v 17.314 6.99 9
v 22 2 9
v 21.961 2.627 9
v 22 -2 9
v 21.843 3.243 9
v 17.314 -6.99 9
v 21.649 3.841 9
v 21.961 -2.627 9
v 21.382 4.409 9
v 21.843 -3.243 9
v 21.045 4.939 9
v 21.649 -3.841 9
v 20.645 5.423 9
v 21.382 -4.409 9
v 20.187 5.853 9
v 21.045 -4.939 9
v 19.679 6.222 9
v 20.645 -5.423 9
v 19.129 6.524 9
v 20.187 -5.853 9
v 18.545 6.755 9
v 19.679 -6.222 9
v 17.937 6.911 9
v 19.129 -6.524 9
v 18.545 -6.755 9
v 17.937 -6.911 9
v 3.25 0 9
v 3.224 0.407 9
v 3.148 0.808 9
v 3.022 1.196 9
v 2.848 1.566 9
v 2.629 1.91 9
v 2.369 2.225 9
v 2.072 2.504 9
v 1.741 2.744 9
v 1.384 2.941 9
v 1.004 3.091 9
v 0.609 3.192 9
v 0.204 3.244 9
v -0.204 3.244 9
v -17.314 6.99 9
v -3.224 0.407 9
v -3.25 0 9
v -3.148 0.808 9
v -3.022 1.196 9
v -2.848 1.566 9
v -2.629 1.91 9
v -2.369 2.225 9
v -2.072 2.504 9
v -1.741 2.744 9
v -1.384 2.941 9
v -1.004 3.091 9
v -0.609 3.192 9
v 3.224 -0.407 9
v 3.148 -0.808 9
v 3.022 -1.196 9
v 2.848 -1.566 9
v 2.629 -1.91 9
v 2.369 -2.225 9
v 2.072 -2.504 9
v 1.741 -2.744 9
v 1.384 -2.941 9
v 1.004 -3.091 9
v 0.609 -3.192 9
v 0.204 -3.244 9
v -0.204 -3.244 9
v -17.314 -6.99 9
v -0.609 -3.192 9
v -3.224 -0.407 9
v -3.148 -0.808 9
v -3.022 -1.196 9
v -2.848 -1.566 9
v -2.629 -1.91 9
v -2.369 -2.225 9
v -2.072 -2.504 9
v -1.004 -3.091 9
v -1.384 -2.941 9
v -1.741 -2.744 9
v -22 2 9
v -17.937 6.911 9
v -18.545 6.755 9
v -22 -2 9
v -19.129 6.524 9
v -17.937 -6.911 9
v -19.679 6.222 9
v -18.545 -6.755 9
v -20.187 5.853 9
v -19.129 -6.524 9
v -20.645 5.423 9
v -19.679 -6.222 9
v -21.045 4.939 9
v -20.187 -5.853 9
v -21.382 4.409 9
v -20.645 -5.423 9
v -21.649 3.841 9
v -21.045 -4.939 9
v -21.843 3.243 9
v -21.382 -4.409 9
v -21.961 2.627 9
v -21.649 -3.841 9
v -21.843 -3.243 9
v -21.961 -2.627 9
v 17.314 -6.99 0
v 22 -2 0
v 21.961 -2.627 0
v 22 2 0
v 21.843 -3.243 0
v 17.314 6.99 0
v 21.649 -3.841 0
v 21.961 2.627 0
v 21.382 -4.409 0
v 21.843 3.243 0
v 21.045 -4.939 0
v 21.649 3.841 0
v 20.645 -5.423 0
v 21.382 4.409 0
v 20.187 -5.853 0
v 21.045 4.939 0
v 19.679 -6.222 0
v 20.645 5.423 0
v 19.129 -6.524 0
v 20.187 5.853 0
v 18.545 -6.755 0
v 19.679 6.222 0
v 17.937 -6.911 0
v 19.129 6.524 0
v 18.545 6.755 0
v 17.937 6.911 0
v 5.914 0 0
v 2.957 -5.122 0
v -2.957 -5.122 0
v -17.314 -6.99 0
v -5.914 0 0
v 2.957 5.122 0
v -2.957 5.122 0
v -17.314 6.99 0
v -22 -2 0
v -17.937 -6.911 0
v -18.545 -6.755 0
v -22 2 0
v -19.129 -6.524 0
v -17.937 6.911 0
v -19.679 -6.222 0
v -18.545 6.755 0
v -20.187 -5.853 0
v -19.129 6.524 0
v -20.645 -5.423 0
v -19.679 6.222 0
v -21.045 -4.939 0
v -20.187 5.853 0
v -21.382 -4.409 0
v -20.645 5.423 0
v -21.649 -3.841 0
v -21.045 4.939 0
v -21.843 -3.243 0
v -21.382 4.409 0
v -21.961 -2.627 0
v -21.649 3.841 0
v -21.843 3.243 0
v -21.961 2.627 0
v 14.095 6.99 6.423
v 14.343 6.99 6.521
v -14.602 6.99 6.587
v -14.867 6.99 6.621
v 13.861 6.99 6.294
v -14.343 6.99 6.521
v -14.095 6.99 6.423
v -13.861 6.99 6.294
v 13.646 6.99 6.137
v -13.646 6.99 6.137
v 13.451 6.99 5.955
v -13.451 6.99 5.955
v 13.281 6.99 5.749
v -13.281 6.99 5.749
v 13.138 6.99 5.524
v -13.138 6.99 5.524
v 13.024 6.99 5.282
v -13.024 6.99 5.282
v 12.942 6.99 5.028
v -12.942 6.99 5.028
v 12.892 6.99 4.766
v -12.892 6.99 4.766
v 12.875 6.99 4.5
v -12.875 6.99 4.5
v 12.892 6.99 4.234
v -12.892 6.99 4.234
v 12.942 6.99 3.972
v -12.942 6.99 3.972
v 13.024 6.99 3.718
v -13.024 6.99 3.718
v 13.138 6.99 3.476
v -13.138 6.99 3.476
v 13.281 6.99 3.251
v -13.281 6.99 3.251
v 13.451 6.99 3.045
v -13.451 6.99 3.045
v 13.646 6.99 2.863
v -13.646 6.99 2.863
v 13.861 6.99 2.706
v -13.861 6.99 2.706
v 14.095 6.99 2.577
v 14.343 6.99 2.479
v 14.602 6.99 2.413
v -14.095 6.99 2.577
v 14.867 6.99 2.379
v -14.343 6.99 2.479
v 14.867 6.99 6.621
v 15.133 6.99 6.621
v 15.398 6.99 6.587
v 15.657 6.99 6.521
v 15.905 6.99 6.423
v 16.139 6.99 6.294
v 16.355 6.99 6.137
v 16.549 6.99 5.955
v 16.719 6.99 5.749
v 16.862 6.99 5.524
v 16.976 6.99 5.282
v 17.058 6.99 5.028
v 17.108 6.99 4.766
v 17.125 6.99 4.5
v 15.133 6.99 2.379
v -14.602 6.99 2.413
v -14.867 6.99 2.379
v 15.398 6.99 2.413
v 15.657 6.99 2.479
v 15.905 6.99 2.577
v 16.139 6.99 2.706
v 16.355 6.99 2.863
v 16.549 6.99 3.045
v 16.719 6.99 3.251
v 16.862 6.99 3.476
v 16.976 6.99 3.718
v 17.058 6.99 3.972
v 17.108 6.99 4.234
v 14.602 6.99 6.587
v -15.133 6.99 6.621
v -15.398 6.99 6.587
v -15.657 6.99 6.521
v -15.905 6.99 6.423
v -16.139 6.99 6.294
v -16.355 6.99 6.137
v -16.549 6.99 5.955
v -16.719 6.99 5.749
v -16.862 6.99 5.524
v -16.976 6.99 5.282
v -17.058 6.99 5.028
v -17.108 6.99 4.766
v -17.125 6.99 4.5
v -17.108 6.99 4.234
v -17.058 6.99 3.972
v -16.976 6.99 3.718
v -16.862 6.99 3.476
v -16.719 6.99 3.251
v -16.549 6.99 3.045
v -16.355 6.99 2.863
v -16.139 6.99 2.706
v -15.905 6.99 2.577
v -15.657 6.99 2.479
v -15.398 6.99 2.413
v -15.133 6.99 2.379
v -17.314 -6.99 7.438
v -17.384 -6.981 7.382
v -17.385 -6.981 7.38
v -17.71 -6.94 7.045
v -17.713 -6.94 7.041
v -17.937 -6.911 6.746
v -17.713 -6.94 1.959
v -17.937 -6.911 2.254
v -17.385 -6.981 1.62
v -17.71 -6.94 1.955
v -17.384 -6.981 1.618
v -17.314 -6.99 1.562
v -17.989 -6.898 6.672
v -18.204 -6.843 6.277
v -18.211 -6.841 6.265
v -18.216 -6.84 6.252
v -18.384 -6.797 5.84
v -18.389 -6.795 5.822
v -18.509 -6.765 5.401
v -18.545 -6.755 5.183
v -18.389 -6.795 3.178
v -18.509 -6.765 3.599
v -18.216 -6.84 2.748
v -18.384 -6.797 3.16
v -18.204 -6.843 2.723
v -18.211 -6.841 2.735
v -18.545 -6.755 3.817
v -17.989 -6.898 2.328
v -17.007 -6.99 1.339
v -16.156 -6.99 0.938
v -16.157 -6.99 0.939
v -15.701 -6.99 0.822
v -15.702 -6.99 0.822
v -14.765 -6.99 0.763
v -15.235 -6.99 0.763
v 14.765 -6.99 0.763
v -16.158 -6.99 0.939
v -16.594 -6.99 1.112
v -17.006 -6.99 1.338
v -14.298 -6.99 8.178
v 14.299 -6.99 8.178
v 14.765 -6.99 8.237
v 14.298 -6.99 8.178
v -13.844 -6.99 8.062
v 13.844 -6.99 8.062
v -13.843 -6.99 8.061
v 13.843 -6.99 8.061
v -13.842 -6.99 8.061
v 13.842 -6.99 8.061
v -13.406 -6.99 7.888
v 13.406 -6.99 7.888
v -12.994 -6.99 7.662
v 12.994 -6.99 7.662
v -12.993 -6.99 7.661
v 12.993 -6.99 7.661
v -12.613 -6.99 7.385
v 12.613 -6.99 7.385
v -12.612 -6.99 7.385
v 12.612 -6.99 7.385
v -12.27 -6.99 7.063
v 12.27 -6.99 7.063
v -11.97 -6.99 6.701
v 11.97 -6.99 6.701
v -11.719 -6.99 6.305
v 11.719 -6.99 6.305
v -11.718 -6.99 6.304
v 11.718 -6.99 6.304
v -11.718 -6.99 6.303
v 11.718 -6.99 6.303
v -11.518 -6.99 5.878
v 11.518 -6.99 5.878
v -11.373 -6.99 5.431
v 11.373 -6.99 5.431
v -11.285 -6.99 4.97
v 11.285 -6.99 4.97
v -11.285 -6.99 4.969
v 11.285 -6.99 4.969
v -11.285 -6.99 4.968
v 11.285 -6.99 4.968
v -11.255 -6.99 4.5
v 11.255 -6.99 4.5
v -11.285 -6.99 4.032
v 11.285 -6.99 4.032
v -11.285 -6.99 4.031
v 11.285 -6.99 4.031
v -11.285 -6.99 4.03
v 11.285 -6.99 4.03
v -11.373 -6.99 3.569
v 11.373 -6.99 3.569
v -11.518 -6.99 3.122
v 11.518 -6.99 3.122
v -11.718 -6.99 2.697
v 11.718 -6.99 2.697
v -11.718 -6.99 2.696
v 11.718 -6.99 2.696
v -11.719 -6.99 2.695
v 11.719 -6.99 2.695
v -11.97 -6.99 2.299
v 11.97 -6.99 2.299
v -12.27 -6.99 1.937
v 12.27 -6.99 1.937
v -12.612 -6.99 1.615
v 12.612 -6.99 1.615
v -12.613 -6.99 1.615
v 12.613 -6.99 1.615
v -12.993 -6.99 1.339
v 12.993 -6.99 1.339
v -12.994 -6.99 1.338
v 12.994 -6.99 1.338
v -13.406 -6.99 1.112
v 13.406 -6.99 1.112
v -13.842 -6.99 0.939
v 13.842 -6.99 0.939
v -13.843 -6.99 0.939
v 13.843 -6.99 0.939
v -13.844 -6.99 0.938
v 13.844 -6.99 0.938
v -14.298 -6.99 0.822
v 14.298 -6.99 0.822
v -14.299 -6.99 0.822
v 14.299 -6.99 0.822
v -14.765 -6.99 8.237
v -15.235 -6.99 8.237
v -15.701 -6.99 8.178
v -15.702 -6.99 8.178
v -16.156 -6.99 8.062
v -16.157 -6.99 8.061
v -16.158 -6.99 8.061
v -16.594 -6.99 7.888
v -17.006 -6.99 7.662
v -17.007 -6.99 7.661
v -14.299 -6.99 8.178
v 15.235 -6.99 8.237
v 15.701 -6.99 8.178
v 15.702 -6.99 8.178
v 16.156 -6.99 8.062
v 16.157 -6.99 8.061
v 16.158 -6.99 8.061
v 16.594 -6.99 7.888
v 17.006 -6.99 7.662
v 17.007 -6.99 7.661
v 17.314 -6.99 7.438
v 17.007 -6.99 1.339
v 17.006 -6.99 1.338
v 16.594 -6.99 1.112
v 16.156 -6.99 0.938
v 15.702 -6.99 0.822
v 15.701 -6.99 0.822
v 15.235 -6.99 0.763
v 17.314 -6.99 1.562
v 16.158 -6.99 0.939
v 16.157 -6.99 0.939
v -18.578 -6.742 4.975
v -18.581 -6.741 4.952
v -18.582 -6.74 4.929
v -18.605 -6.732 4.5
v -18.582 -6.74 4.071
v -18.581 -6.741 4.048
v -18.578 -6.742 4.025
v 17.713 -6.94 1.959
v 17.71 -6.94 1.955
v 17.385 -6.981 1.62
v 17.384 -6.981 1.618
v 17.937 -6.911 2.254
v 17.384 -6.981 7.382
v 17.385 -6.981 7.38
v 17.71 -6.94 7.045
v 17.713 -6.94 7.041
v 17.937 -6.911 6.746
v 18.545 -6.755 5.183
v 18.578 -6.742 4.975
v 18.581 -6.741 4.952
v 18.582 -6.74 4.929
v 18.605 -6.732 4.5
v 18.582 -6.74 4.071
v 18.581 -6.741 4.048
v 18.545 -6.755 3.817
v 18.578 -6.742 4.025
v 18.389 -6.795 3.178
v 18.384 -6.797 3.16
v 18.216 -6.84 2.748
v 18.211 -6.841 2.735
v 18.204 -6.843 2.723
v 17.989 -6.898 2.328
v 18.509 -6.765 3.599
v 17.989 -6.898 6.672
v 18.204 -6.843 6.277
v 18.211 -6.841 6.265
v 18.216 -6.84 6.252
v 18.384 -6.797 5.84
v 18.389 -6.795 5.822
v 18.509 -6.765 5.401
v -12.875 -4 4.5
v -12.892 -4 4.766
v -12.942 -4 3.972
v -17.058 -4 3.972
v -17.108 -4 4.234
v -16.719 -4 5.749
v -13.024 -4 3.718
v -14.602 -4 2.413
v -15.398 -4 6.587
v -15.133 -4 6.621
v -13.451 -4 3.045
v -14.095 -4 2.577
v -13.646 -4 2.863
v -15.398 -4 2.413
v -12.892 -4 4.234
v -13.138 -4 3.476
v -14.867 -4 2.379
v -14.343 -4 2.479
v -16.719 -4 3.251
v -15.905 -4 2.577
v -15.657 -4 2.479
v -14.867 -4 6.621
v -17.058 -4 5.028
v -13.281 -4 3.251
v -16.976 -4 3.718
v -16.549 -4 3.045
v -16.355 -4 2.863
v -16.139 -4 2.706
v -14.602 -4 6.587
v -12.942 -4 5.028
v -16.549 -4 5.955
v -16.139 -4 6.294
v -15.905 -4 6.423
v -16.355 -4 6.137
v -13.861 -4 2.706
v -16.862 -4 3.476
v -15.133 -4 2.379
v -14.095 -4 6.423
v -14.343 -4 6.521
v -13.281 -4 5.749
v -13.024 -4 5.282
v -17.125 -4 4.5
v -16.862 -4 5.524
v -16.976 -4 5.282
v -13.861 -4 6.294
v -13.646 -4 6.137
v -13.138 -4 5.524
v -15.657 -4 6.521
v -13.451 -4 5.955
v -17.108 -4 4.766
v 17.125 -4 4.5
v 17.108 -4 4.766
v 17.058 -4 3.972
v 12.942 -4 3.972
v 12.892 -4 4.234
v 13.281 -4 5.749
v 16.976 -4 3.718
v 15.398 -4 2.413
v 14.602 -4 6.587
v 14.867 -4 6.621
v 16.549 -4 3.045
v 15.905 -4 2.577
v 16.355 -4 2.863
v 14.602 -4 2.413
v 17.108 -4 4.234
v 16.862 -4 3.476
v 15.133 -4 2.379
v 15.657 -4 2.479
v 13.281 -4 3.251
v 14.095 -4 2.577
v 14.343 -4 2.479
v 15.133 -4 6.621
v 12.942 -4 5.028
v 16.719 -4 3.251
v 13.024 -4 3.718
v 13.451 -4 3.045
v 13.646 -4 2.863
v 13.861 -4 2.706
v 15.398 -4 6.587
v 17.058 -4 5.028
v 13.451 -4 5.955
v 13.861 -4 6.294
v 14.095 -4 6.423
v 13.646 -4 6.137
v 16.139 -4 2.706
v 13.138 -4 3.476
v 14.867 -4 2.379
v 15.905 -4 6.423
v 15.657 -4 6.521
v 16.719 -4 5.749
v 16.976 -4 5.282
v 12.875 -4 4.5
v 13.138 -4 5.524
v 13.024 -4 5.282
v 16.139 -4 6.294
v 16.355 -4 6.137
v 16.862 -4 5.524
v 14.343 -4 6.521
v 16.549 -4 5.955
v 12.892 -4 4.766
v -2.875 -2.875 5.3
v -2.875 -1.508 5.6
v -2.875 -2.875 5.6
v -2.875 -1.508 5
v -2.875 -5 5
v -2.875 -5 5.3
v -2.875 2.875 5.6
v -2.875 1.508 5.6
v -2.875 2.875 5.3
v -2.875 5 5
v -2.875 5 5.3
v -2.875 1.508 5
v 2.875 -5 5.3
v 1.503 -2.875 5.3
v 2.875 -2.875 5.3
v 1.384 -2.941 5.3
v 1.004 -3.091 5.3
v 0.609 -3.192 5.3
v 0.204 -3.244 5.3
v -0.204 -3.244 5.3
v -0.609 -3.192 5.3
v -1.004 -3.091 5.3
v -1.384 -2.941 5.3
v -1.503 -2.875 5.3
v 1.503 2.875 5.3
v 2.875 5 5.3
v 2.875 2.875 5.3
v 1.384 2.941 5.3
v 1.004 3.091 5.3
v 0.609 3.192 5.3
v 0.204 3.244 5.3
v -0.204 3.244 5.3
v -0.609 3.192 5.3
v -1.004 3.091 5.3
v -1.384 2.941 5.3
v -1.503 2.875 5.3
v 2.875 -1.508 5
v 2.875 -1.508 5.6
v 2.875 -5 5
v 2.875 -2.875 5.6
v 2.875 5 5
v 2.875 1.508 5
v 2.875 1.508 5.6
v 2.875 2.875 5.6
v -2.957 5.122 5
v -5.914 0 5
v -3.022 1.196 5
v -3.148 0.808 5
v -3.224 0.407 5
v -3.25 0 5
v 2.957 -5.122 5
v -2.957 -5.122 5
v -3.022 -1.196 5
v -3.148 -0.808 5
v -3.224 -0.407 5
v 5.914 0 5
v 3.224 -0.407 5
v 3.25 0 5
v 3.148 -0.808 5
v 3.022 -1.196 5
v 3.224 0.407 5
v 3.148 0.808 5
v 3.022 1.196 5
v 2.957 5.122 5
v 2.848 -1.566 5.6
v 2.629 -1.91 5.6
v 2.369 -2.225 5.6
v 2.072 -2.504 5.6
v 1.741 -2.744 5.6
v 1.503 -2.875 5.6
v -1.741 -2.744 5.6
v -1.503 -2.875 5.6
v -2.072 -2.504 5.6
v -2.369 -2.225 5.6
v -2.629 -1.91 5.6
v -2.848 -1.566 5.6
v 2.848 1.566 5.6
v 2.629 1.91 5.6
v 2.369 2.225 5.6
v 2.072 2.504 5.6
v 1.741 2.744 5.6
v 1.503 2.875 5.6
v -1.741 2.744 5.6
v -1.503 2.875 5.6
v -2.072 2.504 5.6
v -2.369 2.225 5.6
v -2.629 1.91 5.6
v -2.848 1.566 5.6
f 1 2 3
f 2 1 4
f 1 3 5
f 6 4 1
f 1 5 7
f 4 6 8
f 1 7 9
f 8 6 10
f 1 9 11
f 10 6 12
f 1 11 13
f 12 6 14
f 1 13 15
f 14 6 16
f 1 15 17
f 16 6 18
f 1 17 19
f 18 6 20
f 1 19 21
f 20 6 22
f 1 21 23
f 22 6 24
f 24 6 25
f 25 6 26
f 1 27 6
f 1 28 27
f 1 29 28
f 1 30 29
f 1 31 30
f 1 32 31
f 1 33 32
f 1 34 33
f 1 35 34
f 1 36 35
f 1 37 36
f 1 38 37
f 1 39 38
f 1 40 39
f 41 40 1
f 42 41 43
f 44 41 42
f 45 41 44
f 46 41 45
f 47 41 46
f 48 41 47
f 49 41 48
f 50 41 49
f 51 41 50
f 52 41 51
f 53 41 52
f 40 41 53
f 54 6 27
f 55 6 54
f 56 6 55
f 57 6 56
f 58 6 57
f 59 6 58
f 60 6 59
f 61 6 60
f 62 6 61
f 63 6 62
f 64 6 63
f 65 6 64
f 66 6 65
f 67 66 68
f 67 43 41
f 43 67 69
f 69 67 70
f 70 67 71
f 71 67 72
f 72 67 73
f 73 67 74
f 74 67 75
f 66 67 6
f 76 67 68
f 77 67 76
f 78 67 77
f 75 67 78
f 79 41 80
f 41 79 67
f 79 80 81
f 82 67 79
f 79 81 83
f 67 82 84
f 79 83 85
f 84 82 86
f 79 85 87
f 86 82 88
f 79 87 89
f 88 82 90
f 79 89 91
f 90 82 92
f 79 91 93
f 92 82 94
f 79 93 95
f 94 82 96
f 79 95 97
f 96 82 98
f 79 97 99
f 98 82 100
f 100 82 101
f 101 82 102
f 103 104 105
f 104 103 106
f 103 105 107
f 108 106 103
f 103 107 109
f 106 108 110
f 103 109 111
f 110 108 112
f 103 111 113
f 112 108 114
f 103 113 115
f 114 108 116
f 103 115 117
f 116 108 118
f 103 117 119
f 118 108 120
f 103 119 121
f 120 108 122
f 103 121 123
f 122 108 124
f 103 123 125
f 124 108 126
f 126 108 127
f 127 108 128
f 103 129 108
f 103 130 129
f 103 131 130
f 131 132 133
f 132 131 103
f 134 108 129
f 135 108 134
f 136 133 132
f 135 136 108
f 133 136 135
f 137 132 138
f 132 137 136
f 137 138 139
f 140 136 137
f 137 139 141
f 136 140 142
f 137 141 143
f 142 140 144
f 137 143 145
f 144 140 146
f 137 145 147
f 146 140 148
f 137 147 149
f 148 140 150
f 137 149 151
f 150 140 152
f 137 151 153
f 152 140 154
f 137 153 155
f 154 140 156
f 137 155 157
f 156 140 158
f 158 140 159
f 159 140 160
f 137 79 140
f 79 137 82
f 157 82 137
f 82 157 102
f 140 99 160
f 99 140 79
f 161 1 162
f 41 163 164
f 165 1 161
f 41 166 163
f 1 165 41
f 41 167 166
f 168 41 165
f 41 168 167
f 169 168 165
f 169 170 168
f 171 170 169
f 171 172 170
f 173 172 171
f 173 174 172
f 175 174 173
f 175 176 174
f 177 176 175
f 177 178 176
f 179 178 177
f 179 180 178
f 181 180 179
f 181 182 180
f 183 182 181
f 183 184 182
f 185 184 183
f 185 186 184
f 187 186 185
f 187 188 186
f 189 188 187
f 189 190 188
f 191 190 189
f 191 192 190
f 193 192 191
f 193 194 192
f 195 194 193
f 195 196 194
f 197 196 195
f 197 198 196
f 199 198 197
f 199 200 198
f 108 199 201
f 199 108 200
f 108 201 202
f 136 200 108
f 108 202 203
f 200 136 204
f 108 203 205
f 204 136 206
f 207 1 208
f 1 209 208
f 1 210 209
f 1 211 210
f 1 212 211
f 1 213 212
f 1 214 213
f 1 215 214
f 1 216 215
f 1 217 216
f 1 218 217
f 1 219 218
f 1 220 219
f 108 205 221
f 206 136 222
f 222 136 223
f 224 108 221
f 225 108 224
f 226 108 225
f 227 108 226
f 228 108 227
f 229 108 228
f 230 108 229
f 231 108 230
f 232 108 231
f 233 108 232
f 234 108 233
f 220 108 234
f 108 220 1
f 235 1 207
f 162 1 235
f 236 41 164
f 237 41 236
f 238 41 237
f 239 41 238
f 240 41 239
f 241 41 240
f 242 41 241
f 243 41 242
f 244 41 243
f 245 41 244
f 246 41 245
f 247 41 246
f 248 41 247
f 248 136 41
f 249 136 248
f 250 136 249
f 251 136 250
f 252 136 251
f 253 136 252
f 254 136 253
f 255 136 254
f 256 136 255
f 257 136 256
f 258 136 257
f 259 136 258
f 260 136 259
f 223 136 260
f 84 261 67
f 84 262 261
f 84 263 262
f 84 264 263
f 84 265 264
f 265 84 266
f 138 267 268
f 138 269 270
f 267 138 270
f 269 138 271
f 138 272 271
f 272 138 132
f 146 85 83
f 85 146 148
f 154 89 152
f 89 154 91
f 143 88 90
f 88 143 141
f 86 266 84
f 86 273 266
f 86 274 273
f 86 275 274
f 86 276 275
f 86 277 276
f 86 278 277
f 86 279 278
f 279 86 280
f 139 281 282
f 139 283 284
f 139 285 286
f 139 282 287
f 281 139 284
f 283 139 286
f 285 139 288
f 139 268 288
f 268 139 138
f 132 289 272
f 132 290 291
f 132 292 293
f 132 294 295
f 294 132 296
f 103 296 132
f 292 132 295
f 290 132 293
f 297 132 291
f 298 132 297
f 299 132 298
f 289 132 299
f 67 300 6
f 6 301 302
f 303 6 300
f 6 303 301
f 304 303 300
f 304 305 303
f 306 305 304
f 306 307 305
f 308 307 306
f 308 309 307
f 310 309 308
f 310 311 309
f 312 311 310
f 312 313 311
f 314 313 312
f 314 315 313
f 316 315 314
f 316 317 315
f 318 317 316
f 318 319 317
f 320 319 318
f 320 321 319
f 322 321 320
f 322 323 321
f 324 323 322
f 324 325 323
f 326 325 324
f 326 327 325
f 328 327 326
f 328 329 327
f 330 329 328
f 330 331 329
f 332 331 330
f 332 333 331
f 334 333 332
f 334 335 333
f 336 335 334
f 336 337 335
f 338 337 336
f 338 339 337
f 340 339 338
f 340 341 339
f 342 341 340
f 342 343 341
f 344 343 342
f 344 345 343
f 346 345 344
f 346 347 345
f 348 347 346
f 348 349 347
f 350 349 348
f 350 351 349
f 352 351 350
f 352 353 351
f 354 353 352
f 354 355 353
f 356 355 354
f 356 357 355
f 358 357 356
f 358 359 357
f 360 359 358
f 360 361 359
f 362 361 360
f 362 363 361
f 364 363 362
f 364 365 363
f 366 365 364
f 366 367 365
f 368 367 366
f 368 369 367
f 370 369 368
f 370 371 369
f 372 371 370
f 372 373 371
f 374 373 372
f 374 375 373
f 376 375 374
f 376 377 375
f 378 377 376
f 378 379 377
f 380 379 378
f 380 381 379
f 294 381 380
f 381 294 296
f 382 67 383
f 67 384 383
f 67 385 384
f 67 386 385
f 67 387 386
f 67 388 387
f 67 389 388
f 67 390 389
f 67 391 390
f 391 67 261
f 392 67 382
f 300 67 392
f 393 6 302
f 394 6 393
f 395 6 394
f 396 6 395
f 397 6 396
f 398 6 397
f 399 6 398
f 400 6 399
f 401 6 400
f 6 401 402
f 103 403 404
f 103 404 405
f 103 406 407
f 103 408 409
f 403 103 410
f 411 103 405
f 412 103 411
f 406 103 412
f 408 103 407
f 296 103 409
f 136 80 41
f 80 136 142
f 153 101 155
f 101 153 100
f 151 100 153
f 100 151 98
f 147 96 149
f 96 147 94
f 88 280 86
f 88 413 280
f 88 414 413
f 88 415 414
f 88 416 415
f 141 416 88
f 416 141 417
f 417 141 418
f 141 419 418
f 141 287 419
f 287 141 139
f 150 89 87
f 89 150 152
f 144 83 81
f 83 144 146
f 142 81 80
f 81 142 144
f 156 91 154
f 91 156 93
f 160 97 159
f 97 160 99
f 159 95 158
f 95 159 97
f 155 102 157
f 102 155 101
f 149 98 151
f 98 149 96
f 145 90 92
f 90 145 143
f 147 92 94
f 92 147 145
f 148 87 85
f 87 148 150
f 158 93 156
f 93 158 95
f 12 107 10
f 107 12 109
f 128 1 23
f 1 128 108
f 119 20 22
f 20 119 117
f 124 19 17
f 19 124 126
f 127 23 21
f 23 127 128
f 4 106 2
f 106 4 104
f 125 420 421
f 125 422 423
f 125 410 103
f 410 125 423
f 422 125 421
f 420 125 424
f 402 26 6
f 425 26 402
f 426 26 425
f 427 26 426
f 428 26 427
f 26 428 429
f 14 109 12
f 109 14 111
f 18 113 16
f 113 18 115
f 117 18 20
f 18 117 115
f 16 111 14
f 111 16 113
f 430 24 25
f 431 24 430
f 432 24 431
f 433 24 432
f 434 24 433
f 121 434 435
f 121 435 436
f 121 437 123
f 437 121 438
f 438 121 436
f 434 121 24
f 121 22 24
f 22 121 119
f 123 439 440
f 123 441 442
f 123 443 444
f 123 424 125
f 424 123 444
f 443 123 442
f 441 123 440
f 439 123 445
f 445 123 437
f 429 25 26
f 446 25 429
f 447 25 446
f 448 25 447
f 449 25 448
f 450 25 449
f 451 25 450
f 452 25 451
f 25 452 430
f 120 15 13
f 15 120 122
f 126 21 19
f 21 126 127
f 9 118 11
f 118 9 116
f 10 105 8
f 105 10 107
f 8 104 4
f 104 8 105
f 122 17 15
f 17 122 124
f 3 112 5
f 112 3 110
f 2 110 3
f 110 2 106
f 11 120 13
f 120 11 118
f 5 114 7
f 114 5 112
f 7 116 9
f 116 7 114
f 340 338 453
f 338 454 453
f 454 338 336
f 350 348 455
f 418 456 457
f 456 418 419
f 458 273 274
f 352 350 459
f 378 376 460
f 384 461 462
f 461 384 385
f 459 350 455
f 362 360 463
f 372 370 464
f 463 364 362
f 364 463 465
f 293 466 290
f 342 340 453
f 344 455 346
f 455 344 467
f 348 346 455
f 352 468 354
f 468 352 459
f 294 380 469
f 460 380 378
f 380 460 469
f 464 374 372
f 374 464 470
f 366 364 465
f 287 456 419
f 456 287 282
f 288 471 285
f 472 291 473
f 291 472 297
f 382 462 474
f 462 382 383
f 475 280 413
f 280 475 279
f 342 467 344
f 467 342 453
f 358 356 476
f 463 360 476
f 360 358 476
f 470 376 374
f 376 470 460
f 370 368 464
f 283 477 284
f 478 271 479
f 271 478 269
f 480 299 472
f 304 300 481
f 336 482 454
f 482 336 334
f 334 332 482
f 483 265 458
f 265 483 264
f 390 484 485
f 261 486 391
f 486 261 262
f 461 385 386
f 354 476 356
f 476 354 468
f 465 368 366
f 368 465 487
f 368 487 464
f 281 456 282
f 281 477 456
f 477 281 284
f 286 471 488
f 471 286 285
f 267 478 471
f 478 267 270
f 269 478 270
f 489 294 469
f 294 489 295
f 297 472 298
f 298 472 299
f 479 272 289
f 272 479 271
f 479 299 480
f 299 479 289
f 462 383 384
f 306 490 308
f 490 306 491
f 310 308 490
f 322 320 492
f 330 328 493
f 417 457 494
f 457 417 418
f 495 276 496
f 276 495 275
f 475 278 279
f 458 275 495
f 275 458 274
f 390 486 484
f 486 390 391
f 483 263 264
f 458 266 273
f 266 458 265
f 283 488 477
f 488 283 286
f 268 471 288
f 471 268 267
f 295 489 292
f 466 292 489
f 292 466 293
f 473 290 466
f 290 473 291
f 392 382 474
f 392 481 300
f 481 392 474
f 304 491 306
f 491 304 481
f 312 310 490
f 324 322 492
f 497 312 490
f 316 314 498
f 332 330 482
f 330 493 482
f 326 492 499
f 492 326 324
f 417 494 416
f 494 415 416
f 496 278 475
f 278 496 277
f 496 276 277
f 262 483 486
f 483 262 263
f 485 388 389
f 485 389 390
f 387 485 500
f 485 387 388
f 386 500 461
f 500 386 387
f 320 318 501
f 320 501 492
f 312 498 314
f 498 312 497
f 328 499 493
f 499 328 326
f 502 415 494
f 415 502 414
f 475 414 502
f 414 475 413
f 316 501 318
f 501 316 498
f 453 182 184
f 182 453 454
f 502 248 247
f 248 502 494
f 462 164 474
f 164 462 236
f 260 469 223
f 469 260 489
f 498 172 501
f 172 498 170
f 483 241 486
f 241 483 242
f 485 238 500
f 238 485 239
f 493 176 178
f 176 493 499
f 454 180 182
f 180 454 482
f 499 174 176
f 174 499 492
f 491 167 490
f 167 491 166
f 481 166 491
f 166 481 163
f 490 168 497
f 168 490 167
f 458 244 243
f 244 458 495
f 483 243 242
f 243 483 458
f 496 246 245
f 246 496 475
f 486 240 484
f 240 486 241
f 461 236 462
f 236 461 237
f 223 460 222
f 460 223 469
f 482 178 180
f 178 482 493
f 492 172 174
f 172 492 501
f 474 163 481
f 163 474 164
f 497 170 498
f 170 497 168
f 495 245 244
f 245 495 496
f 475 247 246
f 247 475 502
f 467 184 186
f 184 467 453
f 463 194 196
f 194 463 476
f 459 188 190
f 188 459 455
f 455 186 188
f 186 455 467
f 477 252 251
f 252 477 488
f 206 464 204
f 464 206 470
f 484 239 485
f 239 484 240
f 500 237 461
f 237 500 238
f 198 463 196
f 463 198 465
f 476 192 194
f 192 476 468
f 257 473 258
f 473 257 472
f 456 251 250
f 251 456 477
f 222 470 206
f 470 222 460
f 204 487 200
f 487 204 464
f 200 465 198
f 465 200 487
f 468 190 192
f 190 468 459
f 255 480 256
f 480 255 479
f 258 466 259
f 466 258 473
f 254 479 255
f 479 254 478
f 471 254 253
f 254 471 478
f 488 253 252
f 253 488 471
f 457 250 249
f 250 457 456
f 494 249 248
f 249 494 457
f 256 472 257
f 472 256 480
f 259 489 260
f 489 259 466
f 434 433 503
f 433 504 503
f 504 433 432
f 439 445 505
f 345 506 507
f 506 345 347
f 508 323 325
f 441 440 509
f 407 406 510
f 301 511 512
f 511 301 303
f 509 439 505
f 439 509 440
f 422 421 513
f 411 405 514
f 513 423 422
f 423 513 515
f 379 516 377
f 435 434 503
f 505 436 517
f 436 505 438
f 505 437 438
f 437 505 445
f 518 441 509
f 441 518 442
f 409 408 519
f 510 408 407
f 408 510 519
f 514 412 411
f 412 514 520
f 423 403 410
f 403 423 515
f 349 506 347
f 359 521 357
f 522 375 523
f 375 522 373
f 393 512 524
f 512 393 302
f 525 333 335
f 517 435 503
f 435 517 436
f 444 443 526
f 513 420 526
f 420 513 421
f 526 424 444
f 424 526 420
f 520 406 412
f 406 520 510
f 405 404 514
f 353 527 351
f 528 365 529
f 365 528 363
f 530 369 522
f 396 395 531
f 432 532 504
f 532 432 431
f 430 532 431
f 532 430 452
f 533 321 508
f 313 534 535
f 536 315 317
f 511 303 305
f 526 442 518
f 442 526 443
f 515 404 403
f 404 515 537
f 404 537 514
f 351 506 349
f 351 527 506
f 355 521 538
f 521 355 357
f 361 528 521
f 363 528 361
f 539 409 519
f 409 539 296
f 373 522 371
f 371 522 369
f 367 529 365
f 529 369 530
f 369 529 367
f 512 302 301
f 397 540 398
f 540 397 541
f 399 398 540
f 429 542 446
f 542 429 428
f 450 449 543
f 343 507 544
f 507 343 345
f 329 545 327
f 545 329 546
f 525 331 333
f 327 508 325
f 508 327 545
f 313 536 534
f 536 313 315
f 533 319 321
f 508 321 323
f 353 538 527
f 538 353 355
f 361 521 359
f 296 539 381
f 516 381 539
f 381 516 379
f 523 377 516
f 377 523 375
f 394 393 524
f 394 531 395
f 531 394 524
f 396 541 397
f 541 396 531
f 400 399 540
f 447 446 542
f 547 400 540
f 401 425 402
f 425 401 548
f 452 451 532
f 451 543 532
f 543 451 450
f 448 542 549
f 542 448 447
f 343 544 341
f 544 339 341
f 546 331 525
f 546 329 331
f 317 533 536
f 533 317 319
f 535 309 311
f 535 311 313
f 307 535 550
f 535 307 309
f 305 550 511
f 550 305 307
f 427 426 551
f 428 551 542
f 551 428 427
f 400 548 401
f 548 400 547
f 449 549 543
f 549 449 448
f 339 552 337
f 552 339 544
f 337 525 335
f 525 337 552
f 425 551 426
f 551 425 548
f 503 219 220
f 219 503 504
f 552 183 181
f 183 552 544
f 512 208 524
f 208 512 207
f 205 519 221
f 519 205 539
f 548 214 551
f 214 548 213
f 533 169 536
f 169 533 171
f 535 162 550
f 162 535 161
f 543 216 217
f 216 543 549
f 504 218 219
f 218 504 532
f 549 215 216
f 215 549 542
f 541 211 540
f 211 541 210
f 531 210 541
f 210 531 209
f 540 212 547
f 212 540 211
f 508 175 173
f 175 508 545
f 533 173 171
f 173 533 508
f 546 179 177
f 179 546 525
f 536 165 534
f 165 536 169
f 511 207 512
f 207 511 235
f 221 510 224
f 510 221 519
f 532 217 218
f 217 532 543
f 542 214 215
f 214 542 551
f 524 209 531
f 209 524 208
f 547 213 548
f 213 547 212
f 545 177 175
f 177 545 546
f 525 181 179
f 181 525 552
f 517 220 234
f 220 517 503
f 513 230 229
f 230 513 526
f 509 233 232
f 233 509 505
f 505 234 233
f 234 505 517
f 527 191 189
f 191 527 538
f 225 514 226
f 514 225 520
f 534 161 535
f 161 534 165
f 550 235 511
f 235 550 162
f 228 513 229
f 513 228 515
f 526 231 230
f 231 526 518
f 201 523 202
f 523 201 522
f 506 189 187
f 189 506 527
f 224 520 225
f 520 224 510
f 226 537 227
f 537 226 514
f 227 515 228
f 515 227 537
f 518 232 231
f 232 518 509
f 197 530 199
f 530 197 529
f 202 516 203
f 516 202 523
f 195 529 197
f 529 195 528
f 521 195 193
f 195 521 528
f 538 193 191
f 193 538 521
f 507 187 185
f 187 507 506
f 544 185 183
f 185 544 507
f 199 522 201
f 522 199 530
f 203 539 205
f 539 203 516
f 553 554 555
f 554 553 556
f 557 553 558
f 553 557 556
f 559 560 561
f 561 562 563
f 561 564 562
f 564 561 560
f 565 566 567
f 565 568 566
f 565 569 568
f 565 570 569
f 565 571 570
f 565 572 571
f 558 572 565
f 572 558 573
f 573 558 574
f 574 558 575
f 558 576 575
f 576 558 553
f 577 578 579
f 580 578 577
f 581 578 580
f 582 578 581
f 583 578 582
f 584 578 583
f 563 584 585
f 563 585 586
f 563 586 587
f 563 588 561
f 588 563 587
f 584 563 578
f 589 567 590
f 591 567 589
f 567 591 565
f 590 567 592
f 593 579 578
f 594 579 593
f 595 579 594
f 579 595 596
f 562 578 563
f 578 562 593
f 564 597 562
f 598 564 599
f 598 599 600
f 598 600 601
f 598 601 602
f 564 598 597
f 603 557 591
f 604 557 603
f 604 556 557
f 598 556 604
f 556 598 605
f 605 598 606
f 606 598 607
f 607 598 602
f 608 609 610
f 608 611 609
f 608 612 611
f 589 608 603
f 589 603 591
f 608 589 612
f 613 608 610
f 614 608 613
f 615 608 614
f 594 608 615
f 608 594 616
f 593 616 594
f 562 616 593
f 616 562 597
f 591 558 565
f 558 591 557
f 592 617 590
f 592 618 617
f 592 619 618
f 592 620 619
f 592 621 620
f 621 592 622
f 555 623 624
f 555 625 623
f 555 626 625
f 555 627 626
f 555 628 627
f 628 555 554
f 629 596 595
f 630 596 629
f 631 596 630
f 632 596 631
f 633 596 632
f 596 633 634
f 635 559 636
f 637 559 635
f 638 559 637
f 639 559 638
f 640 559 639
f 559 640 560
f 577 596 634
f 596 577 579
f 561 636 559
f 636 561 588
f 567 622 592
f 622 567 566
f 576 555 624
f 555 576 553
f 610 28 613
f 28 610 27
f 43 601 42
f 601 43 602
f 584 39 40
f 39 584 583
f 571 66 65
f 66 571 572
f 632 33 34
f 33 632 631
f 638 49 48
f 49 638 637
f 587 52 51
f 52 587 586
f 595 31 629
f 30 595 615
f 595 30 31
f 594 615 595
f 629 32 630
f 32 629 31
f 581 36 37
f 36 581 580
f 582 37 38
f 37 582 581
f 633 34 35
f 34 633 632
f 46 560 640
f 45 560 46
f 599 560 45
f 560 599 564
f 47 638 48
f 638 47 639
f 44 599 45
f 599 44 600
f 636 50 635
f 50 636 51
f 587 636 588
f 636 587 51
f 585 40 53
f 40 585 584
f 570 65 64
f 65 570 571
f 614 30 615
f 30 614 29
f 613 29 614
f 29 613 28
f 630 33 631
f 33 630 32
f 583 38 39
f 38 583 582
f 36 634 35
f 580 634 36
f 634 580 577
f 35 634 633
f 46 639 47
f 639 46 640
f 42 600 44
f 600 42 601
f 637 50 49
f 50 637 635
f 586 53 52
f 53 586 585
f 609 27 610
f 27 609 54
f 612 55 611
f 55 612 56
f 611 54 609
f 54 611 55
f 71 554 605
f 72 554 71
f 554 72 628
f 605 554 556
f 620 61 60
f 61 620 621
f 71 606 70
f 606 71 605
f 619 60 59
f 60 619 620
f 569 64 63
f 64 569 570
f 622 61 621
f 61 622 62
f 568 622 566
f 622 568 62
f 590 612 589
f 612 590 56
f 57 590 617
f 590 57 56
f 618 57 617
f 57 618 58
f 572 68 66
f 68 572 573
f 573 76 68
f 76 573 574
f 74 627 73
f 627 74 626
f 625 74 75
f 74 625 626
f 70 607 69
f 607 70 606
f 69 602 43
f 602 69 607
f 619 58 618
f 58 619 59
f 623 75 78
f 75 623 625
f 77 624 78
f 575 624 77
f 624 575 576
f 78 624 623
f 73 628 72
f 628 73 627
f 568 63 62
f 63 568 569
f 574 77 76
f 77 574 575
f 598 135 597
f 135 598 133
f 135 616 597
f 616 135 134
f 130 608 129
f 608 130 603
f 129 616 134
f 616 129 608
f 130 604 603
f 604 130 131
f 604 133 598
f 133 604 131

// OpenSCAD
$fn = 50;


difference() {
	union() {
		cylinder(h = 9, r = 7.0000000000);
		translate(v = [-7.5000000000, 0.0000000000, 0]) {
			hull() {
				translate(v = [-9.5000000000, 2.0000000000, 0]) {
					cylinder(h = 9, r = 5);
				}
				translate(v = [9.5000000000, 2.0000000000, 0]) {
					cylinder(h = 9, r = 5);
				}
				translate(v = [-9.5000000000, -2.0000000000, 0]) {
					cylinder(h = 9, r = 5);
				}
				translate(v = [9.5000000000, -2.0000000000, 0]) {
					cylinder(h = 9, r = 5);
				}
			}
		}
		translate(v = [7.5000000000, 0.0000000000, 0]) {
			hull() {
				translate(v = [-9.5000000000, 2.0000000000, 0]) {
					cylinder(h = 9, r = 5);
				}
				translate(v = [9.5000000000, 2.0000000000, 0]) {
					cylinder(h = 9, r = 5);
				}
				translate(v = [-9.5000000000, -2.0000000000, 0]) {
					cylinder(h = 9, r = 5);
				}
				translate(v = [9.5000000000, -2.0000000000, 0]) {
					cylinder(h = 9, r = 5);
				}
			}
		}
	}
	union() {
		translate(v = [-15.0000000000, -7.0000000000, 4.5000000000]) {
			rotate(a = [90, 0, 0]) {
				difference() {
					union() {
						#translate(v = [0, 0, -14.0000000000]) {
							cylinder(h = 14, r = 2.0000000000);
						}
						#translate(v = [0, 0, -3]) {
							cylinder(h = 3, r1 = 2.1250000000, r2 = 3.7500000000);
						}
						#translate(v = [0, 0, -14.0000000000]) {
							cylinder(h = 14, r = 2.1250000000);
						}
						#translate(v = [0, 0, -14.0000000000]) {
							cylinder(h = 14, r = 2.0000000000);
						}
					}
					union();
				}
			}
		}
		translate(v = [15.0000000000, -7.0000000000, 4.5000000000]) {
			rotate(a = [90, 0, 0]) {
				difference() {
					union() {
						#translate(v = [0, 0, -14.0000000000]) {
							cylinder(h = 14, r = 2.0000000000);
						}
						#translate(v = [0, 0, -3]) {
							cylinder(h = 3, r1 = 2.1250000000, r2 = 3.7500000000);
						}
						#translate(v = [0, 0, -14.0000000000]) {
							cylinder(h = 14, r = 2.1250000000);
						}
						#translate(v = [0, 0, -14.0000000000]) {
							cylinder(h = 14, r = 2.0000000000);
						}
					}
					union();
				}
			}
		}
		translate(v = [0.0000000000, 0.0000000000, 0]) {
			rotate(a = [0, 0, 0]) {
				difference() {
					union() {
						#translate(v = [-2.8750000000, -5.0000000000, -0.3000000000]) {
							cube(size = [5.7500000000, 10, 0.3000000000]);
						}
						#translate(v = [-2.8750000000, -2.8750000000, -0.6000000000]) {
							cube(size = [5.7500000000, 5.7500000000, 0.3000000000]);
						}
						#translate(v = [-2.8750000000, -5.0000000000, 5]) {
							cube(size = [5.7500000000, 10, 0.3000000000]);
						}
						#translate(v = [-2.8750000000, -2.8750000000, 5.3000000000]) {
							cube(size = [5.7500000000, 5.7500000000, 0.3000000000]);
						}
						#translate(v = [0, 0, -100.0000000000]) {
							cylinder(h = 200, r = 3.2500000000);
						}
						#linear_extrude(height = 5) {
							polygon(points = [[5.9142500000, 0.0000000000], [2.9571250000, 5.1218907443], [-2.9571250000, 5.1218907443], [-5.9142500000, 0.0000000000], [-2.9571250000, -5.1218907443], [2.9571250000, -5.1218907443]]);
						}
						#translate(v = [-2.8750000000, -5.0000000000, -0.3000000000]) {
							cube(size = [5.7500000000, 10, 0.3000000000]);
						}
						#translate(v = [-2.8750000000, -2.8750000000, -0.6000000000]) {
							cube(size = [5.7500000000, 5.7500000000, 0.3000000000]);
						}
						#translate(v = [-2.8750000000, -5.0000000000, 5]) {
							cube(size = [5.7500000000, 10, 0.3000000000]);
						}
						#translate(v = [-2.8750000000, -2.8750000000, 5.3000000000]) {
							cube(size = [5.7500000000, 5.7500000000, 0.3000000000]);
						}
						#translate(v = [0, 0, -100.0000000000]) {
							cylinder(h = 200, r = 3.2500000000);
						}
						#translate(v = [-2.8750000000, -5.0000000000, -0.3000000000]) {
							cube(size = [5.7500000000, 10, 0.3000000000]);
						}
						#translate(v = [-2.8750000000, -2.8750000000, -0.6000000000]) {
							cube(size = [5.7500000000, 5.7500000000, 0.3000000000]);
						}
						#translate(v = [-2.8750000000, -5.0000000000, 5]) {
							cube(size = [5.7500000000, 10, 0.3000000000]);
						}
						#translate(v = [-2.8750000000, -2.8750000000, 5.3000000000]) {
							cube(size = [5.7500000000, 5.7500000000, 0.3000000000]);
						}
						#translate(v = [0, 0, -100.0000000000]) {
							cylinder(h = 200, r = 3.2500000000);
						}
					}
					union();
				}
			}
		}
		translate(v = [0, 0, -100]) {
			cylinder(h = 200, r = 3.2500000000);
		}
		translate(v = [0, 0, -100]) {
			cylinder(h = 200, r = 1.8000000000);
		}
	}
}
